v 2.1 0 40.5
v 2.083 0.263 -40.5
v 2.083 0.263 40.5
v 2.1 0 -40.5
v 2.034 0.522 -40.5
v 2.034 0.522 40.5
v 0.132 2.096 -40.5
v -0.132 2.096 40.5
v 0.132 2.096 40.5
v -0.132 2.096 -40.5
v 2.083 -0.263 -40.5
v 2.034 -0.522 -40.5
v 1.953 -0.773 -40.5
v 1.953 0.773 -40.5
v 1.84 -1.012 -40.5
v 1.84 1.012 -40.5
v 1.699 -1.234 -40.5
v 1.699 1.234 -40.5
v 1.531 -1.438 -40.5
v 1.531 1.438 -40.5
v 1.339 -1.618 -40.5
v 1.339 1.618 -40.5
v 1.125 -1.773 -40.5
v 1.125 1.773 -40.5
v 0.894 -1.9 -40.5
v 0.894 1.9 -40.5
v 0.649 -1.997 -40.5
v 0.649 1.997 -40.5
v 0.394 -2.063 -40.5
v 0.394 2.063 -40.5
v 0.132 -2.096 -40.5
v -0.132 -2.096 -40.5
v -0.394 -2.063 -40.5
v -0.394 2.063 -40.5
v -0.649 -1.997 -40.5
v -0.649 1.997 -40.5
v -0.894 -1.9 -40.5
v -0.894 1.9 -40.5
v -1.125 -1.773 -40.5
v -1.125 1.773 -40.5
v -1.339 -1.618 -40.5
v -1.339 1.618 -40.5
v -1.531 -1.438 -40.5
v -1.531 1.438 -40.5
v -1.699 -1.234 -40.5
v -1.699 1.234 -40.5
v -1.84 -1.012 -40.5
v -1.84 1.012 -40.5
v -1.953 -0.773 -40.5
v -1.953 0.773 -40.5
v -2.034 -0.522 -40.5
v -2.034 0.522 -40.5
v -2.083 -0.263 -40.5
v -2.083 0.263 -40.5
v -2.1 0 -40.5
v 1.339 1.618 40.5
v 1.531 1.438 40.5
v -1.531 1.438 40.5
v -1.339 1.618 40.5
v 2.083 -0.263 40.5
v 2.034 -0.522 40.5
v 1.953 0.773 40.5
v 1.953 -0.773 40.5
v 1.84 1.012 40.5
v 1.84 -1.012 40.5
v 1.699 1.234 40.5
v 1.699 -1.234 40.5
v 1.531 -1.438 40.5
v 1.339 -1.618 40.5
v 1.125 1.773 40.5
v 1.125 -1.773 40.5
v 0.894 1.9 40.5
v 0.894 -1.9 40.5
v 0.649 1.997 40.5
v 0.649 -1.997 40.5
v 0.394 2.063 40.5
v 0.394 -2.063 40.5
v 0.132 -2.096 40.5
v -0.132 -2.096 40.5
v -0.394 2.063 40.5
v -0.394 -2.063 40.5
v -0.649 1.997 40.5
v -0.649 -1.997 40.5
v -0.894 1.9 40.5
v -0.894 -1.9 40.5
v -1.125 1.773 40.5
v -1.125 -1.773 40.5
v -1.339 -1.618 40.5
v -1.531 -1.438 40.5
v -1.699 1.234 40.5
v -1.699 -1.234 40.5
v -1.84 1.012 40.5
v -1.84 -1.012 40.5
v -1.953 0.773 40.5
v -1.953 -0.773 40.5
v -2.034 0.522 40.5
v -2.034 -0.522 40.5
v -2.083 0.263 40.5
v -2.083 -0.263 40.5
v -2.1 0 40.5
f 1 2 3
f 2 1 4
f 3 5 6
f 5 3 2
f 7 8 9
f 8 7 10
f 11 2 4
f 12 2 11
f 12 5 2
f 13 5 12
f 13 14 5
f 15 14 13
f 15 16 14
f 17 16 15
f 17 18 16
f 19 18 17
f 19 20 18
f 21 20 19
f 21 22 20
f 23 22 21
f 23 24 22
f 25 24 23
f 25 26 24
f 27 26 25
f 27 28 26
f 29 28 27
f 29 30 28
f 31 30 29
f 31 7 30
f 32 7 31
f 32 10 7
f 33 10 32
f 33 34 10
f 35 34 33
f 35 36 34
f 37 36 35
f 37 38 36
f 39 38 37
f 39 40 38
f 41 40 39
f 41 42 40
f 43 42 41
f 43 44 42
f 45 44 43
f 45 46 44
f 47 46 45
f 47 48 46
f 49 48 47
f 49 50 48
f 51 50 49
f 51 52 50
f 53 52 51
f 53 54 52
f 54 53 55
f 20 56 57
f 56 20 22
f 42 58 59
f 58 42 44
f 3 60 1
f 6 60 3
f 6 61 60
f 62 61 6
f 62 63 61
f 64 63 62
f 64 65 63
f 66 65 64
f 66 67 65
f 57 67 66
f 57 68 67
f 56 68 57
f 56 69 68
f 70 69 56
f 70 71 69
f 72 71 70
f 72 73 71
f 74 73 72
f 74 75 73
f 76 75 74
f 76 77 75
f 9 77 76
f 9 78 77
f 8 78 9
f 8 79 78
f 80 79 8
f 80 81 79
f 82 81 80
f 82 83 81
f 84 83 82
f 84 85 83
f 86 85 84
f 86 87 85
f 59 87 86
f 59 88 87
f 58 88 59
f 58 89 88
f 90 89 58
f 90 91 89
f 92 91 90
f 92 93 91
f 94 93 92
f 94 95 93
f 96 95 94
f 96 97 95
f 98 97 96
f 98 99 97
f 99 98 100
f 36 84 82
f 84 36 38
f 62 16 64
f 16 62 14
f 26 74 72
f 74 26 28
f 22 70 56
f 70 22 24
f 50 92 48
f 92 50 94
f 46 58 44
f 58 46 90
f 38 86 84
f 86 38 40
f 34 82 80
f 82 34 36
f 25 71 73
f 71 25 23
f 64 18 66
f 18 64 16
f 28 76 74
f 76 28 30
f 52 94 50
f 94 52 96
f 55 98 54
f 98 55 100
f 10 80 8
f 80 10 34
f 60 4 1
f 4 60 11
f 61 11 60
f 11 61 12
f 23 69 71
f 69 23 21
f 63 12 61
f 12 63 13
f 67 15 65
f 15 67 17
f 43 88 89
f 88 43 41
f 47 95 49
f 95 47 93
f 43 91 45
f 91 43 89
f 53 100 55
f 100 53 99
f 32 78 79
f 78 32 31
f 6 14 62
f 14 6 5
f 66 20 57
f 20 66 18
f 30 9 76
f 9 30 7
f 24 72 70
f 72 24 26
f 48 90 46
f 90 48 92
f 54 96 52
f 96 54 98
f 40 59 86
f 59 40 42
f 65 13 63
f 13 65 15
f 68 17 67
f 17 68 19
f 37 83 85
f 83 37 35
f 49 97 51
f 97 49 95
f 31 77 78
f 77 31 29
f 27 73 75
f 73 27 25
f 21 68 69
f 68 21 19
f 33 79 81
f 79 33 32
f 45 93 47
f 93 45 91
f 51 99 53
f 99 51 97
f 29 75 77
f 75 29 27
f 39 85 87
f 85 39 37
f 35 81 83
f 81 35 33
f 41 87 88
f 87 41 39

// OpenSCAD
$fn = 50;


difference() {
	union() {
		translate(v = [0, 0, -40.5000000000]) {
			cylinder(h = 81, r = 2.1000000000);
		}
	}
	union() {
		translate(v = [0, 0, -100.0000000000]) {
			cylinder(h = 200, r = 0);
		}
	}
}
